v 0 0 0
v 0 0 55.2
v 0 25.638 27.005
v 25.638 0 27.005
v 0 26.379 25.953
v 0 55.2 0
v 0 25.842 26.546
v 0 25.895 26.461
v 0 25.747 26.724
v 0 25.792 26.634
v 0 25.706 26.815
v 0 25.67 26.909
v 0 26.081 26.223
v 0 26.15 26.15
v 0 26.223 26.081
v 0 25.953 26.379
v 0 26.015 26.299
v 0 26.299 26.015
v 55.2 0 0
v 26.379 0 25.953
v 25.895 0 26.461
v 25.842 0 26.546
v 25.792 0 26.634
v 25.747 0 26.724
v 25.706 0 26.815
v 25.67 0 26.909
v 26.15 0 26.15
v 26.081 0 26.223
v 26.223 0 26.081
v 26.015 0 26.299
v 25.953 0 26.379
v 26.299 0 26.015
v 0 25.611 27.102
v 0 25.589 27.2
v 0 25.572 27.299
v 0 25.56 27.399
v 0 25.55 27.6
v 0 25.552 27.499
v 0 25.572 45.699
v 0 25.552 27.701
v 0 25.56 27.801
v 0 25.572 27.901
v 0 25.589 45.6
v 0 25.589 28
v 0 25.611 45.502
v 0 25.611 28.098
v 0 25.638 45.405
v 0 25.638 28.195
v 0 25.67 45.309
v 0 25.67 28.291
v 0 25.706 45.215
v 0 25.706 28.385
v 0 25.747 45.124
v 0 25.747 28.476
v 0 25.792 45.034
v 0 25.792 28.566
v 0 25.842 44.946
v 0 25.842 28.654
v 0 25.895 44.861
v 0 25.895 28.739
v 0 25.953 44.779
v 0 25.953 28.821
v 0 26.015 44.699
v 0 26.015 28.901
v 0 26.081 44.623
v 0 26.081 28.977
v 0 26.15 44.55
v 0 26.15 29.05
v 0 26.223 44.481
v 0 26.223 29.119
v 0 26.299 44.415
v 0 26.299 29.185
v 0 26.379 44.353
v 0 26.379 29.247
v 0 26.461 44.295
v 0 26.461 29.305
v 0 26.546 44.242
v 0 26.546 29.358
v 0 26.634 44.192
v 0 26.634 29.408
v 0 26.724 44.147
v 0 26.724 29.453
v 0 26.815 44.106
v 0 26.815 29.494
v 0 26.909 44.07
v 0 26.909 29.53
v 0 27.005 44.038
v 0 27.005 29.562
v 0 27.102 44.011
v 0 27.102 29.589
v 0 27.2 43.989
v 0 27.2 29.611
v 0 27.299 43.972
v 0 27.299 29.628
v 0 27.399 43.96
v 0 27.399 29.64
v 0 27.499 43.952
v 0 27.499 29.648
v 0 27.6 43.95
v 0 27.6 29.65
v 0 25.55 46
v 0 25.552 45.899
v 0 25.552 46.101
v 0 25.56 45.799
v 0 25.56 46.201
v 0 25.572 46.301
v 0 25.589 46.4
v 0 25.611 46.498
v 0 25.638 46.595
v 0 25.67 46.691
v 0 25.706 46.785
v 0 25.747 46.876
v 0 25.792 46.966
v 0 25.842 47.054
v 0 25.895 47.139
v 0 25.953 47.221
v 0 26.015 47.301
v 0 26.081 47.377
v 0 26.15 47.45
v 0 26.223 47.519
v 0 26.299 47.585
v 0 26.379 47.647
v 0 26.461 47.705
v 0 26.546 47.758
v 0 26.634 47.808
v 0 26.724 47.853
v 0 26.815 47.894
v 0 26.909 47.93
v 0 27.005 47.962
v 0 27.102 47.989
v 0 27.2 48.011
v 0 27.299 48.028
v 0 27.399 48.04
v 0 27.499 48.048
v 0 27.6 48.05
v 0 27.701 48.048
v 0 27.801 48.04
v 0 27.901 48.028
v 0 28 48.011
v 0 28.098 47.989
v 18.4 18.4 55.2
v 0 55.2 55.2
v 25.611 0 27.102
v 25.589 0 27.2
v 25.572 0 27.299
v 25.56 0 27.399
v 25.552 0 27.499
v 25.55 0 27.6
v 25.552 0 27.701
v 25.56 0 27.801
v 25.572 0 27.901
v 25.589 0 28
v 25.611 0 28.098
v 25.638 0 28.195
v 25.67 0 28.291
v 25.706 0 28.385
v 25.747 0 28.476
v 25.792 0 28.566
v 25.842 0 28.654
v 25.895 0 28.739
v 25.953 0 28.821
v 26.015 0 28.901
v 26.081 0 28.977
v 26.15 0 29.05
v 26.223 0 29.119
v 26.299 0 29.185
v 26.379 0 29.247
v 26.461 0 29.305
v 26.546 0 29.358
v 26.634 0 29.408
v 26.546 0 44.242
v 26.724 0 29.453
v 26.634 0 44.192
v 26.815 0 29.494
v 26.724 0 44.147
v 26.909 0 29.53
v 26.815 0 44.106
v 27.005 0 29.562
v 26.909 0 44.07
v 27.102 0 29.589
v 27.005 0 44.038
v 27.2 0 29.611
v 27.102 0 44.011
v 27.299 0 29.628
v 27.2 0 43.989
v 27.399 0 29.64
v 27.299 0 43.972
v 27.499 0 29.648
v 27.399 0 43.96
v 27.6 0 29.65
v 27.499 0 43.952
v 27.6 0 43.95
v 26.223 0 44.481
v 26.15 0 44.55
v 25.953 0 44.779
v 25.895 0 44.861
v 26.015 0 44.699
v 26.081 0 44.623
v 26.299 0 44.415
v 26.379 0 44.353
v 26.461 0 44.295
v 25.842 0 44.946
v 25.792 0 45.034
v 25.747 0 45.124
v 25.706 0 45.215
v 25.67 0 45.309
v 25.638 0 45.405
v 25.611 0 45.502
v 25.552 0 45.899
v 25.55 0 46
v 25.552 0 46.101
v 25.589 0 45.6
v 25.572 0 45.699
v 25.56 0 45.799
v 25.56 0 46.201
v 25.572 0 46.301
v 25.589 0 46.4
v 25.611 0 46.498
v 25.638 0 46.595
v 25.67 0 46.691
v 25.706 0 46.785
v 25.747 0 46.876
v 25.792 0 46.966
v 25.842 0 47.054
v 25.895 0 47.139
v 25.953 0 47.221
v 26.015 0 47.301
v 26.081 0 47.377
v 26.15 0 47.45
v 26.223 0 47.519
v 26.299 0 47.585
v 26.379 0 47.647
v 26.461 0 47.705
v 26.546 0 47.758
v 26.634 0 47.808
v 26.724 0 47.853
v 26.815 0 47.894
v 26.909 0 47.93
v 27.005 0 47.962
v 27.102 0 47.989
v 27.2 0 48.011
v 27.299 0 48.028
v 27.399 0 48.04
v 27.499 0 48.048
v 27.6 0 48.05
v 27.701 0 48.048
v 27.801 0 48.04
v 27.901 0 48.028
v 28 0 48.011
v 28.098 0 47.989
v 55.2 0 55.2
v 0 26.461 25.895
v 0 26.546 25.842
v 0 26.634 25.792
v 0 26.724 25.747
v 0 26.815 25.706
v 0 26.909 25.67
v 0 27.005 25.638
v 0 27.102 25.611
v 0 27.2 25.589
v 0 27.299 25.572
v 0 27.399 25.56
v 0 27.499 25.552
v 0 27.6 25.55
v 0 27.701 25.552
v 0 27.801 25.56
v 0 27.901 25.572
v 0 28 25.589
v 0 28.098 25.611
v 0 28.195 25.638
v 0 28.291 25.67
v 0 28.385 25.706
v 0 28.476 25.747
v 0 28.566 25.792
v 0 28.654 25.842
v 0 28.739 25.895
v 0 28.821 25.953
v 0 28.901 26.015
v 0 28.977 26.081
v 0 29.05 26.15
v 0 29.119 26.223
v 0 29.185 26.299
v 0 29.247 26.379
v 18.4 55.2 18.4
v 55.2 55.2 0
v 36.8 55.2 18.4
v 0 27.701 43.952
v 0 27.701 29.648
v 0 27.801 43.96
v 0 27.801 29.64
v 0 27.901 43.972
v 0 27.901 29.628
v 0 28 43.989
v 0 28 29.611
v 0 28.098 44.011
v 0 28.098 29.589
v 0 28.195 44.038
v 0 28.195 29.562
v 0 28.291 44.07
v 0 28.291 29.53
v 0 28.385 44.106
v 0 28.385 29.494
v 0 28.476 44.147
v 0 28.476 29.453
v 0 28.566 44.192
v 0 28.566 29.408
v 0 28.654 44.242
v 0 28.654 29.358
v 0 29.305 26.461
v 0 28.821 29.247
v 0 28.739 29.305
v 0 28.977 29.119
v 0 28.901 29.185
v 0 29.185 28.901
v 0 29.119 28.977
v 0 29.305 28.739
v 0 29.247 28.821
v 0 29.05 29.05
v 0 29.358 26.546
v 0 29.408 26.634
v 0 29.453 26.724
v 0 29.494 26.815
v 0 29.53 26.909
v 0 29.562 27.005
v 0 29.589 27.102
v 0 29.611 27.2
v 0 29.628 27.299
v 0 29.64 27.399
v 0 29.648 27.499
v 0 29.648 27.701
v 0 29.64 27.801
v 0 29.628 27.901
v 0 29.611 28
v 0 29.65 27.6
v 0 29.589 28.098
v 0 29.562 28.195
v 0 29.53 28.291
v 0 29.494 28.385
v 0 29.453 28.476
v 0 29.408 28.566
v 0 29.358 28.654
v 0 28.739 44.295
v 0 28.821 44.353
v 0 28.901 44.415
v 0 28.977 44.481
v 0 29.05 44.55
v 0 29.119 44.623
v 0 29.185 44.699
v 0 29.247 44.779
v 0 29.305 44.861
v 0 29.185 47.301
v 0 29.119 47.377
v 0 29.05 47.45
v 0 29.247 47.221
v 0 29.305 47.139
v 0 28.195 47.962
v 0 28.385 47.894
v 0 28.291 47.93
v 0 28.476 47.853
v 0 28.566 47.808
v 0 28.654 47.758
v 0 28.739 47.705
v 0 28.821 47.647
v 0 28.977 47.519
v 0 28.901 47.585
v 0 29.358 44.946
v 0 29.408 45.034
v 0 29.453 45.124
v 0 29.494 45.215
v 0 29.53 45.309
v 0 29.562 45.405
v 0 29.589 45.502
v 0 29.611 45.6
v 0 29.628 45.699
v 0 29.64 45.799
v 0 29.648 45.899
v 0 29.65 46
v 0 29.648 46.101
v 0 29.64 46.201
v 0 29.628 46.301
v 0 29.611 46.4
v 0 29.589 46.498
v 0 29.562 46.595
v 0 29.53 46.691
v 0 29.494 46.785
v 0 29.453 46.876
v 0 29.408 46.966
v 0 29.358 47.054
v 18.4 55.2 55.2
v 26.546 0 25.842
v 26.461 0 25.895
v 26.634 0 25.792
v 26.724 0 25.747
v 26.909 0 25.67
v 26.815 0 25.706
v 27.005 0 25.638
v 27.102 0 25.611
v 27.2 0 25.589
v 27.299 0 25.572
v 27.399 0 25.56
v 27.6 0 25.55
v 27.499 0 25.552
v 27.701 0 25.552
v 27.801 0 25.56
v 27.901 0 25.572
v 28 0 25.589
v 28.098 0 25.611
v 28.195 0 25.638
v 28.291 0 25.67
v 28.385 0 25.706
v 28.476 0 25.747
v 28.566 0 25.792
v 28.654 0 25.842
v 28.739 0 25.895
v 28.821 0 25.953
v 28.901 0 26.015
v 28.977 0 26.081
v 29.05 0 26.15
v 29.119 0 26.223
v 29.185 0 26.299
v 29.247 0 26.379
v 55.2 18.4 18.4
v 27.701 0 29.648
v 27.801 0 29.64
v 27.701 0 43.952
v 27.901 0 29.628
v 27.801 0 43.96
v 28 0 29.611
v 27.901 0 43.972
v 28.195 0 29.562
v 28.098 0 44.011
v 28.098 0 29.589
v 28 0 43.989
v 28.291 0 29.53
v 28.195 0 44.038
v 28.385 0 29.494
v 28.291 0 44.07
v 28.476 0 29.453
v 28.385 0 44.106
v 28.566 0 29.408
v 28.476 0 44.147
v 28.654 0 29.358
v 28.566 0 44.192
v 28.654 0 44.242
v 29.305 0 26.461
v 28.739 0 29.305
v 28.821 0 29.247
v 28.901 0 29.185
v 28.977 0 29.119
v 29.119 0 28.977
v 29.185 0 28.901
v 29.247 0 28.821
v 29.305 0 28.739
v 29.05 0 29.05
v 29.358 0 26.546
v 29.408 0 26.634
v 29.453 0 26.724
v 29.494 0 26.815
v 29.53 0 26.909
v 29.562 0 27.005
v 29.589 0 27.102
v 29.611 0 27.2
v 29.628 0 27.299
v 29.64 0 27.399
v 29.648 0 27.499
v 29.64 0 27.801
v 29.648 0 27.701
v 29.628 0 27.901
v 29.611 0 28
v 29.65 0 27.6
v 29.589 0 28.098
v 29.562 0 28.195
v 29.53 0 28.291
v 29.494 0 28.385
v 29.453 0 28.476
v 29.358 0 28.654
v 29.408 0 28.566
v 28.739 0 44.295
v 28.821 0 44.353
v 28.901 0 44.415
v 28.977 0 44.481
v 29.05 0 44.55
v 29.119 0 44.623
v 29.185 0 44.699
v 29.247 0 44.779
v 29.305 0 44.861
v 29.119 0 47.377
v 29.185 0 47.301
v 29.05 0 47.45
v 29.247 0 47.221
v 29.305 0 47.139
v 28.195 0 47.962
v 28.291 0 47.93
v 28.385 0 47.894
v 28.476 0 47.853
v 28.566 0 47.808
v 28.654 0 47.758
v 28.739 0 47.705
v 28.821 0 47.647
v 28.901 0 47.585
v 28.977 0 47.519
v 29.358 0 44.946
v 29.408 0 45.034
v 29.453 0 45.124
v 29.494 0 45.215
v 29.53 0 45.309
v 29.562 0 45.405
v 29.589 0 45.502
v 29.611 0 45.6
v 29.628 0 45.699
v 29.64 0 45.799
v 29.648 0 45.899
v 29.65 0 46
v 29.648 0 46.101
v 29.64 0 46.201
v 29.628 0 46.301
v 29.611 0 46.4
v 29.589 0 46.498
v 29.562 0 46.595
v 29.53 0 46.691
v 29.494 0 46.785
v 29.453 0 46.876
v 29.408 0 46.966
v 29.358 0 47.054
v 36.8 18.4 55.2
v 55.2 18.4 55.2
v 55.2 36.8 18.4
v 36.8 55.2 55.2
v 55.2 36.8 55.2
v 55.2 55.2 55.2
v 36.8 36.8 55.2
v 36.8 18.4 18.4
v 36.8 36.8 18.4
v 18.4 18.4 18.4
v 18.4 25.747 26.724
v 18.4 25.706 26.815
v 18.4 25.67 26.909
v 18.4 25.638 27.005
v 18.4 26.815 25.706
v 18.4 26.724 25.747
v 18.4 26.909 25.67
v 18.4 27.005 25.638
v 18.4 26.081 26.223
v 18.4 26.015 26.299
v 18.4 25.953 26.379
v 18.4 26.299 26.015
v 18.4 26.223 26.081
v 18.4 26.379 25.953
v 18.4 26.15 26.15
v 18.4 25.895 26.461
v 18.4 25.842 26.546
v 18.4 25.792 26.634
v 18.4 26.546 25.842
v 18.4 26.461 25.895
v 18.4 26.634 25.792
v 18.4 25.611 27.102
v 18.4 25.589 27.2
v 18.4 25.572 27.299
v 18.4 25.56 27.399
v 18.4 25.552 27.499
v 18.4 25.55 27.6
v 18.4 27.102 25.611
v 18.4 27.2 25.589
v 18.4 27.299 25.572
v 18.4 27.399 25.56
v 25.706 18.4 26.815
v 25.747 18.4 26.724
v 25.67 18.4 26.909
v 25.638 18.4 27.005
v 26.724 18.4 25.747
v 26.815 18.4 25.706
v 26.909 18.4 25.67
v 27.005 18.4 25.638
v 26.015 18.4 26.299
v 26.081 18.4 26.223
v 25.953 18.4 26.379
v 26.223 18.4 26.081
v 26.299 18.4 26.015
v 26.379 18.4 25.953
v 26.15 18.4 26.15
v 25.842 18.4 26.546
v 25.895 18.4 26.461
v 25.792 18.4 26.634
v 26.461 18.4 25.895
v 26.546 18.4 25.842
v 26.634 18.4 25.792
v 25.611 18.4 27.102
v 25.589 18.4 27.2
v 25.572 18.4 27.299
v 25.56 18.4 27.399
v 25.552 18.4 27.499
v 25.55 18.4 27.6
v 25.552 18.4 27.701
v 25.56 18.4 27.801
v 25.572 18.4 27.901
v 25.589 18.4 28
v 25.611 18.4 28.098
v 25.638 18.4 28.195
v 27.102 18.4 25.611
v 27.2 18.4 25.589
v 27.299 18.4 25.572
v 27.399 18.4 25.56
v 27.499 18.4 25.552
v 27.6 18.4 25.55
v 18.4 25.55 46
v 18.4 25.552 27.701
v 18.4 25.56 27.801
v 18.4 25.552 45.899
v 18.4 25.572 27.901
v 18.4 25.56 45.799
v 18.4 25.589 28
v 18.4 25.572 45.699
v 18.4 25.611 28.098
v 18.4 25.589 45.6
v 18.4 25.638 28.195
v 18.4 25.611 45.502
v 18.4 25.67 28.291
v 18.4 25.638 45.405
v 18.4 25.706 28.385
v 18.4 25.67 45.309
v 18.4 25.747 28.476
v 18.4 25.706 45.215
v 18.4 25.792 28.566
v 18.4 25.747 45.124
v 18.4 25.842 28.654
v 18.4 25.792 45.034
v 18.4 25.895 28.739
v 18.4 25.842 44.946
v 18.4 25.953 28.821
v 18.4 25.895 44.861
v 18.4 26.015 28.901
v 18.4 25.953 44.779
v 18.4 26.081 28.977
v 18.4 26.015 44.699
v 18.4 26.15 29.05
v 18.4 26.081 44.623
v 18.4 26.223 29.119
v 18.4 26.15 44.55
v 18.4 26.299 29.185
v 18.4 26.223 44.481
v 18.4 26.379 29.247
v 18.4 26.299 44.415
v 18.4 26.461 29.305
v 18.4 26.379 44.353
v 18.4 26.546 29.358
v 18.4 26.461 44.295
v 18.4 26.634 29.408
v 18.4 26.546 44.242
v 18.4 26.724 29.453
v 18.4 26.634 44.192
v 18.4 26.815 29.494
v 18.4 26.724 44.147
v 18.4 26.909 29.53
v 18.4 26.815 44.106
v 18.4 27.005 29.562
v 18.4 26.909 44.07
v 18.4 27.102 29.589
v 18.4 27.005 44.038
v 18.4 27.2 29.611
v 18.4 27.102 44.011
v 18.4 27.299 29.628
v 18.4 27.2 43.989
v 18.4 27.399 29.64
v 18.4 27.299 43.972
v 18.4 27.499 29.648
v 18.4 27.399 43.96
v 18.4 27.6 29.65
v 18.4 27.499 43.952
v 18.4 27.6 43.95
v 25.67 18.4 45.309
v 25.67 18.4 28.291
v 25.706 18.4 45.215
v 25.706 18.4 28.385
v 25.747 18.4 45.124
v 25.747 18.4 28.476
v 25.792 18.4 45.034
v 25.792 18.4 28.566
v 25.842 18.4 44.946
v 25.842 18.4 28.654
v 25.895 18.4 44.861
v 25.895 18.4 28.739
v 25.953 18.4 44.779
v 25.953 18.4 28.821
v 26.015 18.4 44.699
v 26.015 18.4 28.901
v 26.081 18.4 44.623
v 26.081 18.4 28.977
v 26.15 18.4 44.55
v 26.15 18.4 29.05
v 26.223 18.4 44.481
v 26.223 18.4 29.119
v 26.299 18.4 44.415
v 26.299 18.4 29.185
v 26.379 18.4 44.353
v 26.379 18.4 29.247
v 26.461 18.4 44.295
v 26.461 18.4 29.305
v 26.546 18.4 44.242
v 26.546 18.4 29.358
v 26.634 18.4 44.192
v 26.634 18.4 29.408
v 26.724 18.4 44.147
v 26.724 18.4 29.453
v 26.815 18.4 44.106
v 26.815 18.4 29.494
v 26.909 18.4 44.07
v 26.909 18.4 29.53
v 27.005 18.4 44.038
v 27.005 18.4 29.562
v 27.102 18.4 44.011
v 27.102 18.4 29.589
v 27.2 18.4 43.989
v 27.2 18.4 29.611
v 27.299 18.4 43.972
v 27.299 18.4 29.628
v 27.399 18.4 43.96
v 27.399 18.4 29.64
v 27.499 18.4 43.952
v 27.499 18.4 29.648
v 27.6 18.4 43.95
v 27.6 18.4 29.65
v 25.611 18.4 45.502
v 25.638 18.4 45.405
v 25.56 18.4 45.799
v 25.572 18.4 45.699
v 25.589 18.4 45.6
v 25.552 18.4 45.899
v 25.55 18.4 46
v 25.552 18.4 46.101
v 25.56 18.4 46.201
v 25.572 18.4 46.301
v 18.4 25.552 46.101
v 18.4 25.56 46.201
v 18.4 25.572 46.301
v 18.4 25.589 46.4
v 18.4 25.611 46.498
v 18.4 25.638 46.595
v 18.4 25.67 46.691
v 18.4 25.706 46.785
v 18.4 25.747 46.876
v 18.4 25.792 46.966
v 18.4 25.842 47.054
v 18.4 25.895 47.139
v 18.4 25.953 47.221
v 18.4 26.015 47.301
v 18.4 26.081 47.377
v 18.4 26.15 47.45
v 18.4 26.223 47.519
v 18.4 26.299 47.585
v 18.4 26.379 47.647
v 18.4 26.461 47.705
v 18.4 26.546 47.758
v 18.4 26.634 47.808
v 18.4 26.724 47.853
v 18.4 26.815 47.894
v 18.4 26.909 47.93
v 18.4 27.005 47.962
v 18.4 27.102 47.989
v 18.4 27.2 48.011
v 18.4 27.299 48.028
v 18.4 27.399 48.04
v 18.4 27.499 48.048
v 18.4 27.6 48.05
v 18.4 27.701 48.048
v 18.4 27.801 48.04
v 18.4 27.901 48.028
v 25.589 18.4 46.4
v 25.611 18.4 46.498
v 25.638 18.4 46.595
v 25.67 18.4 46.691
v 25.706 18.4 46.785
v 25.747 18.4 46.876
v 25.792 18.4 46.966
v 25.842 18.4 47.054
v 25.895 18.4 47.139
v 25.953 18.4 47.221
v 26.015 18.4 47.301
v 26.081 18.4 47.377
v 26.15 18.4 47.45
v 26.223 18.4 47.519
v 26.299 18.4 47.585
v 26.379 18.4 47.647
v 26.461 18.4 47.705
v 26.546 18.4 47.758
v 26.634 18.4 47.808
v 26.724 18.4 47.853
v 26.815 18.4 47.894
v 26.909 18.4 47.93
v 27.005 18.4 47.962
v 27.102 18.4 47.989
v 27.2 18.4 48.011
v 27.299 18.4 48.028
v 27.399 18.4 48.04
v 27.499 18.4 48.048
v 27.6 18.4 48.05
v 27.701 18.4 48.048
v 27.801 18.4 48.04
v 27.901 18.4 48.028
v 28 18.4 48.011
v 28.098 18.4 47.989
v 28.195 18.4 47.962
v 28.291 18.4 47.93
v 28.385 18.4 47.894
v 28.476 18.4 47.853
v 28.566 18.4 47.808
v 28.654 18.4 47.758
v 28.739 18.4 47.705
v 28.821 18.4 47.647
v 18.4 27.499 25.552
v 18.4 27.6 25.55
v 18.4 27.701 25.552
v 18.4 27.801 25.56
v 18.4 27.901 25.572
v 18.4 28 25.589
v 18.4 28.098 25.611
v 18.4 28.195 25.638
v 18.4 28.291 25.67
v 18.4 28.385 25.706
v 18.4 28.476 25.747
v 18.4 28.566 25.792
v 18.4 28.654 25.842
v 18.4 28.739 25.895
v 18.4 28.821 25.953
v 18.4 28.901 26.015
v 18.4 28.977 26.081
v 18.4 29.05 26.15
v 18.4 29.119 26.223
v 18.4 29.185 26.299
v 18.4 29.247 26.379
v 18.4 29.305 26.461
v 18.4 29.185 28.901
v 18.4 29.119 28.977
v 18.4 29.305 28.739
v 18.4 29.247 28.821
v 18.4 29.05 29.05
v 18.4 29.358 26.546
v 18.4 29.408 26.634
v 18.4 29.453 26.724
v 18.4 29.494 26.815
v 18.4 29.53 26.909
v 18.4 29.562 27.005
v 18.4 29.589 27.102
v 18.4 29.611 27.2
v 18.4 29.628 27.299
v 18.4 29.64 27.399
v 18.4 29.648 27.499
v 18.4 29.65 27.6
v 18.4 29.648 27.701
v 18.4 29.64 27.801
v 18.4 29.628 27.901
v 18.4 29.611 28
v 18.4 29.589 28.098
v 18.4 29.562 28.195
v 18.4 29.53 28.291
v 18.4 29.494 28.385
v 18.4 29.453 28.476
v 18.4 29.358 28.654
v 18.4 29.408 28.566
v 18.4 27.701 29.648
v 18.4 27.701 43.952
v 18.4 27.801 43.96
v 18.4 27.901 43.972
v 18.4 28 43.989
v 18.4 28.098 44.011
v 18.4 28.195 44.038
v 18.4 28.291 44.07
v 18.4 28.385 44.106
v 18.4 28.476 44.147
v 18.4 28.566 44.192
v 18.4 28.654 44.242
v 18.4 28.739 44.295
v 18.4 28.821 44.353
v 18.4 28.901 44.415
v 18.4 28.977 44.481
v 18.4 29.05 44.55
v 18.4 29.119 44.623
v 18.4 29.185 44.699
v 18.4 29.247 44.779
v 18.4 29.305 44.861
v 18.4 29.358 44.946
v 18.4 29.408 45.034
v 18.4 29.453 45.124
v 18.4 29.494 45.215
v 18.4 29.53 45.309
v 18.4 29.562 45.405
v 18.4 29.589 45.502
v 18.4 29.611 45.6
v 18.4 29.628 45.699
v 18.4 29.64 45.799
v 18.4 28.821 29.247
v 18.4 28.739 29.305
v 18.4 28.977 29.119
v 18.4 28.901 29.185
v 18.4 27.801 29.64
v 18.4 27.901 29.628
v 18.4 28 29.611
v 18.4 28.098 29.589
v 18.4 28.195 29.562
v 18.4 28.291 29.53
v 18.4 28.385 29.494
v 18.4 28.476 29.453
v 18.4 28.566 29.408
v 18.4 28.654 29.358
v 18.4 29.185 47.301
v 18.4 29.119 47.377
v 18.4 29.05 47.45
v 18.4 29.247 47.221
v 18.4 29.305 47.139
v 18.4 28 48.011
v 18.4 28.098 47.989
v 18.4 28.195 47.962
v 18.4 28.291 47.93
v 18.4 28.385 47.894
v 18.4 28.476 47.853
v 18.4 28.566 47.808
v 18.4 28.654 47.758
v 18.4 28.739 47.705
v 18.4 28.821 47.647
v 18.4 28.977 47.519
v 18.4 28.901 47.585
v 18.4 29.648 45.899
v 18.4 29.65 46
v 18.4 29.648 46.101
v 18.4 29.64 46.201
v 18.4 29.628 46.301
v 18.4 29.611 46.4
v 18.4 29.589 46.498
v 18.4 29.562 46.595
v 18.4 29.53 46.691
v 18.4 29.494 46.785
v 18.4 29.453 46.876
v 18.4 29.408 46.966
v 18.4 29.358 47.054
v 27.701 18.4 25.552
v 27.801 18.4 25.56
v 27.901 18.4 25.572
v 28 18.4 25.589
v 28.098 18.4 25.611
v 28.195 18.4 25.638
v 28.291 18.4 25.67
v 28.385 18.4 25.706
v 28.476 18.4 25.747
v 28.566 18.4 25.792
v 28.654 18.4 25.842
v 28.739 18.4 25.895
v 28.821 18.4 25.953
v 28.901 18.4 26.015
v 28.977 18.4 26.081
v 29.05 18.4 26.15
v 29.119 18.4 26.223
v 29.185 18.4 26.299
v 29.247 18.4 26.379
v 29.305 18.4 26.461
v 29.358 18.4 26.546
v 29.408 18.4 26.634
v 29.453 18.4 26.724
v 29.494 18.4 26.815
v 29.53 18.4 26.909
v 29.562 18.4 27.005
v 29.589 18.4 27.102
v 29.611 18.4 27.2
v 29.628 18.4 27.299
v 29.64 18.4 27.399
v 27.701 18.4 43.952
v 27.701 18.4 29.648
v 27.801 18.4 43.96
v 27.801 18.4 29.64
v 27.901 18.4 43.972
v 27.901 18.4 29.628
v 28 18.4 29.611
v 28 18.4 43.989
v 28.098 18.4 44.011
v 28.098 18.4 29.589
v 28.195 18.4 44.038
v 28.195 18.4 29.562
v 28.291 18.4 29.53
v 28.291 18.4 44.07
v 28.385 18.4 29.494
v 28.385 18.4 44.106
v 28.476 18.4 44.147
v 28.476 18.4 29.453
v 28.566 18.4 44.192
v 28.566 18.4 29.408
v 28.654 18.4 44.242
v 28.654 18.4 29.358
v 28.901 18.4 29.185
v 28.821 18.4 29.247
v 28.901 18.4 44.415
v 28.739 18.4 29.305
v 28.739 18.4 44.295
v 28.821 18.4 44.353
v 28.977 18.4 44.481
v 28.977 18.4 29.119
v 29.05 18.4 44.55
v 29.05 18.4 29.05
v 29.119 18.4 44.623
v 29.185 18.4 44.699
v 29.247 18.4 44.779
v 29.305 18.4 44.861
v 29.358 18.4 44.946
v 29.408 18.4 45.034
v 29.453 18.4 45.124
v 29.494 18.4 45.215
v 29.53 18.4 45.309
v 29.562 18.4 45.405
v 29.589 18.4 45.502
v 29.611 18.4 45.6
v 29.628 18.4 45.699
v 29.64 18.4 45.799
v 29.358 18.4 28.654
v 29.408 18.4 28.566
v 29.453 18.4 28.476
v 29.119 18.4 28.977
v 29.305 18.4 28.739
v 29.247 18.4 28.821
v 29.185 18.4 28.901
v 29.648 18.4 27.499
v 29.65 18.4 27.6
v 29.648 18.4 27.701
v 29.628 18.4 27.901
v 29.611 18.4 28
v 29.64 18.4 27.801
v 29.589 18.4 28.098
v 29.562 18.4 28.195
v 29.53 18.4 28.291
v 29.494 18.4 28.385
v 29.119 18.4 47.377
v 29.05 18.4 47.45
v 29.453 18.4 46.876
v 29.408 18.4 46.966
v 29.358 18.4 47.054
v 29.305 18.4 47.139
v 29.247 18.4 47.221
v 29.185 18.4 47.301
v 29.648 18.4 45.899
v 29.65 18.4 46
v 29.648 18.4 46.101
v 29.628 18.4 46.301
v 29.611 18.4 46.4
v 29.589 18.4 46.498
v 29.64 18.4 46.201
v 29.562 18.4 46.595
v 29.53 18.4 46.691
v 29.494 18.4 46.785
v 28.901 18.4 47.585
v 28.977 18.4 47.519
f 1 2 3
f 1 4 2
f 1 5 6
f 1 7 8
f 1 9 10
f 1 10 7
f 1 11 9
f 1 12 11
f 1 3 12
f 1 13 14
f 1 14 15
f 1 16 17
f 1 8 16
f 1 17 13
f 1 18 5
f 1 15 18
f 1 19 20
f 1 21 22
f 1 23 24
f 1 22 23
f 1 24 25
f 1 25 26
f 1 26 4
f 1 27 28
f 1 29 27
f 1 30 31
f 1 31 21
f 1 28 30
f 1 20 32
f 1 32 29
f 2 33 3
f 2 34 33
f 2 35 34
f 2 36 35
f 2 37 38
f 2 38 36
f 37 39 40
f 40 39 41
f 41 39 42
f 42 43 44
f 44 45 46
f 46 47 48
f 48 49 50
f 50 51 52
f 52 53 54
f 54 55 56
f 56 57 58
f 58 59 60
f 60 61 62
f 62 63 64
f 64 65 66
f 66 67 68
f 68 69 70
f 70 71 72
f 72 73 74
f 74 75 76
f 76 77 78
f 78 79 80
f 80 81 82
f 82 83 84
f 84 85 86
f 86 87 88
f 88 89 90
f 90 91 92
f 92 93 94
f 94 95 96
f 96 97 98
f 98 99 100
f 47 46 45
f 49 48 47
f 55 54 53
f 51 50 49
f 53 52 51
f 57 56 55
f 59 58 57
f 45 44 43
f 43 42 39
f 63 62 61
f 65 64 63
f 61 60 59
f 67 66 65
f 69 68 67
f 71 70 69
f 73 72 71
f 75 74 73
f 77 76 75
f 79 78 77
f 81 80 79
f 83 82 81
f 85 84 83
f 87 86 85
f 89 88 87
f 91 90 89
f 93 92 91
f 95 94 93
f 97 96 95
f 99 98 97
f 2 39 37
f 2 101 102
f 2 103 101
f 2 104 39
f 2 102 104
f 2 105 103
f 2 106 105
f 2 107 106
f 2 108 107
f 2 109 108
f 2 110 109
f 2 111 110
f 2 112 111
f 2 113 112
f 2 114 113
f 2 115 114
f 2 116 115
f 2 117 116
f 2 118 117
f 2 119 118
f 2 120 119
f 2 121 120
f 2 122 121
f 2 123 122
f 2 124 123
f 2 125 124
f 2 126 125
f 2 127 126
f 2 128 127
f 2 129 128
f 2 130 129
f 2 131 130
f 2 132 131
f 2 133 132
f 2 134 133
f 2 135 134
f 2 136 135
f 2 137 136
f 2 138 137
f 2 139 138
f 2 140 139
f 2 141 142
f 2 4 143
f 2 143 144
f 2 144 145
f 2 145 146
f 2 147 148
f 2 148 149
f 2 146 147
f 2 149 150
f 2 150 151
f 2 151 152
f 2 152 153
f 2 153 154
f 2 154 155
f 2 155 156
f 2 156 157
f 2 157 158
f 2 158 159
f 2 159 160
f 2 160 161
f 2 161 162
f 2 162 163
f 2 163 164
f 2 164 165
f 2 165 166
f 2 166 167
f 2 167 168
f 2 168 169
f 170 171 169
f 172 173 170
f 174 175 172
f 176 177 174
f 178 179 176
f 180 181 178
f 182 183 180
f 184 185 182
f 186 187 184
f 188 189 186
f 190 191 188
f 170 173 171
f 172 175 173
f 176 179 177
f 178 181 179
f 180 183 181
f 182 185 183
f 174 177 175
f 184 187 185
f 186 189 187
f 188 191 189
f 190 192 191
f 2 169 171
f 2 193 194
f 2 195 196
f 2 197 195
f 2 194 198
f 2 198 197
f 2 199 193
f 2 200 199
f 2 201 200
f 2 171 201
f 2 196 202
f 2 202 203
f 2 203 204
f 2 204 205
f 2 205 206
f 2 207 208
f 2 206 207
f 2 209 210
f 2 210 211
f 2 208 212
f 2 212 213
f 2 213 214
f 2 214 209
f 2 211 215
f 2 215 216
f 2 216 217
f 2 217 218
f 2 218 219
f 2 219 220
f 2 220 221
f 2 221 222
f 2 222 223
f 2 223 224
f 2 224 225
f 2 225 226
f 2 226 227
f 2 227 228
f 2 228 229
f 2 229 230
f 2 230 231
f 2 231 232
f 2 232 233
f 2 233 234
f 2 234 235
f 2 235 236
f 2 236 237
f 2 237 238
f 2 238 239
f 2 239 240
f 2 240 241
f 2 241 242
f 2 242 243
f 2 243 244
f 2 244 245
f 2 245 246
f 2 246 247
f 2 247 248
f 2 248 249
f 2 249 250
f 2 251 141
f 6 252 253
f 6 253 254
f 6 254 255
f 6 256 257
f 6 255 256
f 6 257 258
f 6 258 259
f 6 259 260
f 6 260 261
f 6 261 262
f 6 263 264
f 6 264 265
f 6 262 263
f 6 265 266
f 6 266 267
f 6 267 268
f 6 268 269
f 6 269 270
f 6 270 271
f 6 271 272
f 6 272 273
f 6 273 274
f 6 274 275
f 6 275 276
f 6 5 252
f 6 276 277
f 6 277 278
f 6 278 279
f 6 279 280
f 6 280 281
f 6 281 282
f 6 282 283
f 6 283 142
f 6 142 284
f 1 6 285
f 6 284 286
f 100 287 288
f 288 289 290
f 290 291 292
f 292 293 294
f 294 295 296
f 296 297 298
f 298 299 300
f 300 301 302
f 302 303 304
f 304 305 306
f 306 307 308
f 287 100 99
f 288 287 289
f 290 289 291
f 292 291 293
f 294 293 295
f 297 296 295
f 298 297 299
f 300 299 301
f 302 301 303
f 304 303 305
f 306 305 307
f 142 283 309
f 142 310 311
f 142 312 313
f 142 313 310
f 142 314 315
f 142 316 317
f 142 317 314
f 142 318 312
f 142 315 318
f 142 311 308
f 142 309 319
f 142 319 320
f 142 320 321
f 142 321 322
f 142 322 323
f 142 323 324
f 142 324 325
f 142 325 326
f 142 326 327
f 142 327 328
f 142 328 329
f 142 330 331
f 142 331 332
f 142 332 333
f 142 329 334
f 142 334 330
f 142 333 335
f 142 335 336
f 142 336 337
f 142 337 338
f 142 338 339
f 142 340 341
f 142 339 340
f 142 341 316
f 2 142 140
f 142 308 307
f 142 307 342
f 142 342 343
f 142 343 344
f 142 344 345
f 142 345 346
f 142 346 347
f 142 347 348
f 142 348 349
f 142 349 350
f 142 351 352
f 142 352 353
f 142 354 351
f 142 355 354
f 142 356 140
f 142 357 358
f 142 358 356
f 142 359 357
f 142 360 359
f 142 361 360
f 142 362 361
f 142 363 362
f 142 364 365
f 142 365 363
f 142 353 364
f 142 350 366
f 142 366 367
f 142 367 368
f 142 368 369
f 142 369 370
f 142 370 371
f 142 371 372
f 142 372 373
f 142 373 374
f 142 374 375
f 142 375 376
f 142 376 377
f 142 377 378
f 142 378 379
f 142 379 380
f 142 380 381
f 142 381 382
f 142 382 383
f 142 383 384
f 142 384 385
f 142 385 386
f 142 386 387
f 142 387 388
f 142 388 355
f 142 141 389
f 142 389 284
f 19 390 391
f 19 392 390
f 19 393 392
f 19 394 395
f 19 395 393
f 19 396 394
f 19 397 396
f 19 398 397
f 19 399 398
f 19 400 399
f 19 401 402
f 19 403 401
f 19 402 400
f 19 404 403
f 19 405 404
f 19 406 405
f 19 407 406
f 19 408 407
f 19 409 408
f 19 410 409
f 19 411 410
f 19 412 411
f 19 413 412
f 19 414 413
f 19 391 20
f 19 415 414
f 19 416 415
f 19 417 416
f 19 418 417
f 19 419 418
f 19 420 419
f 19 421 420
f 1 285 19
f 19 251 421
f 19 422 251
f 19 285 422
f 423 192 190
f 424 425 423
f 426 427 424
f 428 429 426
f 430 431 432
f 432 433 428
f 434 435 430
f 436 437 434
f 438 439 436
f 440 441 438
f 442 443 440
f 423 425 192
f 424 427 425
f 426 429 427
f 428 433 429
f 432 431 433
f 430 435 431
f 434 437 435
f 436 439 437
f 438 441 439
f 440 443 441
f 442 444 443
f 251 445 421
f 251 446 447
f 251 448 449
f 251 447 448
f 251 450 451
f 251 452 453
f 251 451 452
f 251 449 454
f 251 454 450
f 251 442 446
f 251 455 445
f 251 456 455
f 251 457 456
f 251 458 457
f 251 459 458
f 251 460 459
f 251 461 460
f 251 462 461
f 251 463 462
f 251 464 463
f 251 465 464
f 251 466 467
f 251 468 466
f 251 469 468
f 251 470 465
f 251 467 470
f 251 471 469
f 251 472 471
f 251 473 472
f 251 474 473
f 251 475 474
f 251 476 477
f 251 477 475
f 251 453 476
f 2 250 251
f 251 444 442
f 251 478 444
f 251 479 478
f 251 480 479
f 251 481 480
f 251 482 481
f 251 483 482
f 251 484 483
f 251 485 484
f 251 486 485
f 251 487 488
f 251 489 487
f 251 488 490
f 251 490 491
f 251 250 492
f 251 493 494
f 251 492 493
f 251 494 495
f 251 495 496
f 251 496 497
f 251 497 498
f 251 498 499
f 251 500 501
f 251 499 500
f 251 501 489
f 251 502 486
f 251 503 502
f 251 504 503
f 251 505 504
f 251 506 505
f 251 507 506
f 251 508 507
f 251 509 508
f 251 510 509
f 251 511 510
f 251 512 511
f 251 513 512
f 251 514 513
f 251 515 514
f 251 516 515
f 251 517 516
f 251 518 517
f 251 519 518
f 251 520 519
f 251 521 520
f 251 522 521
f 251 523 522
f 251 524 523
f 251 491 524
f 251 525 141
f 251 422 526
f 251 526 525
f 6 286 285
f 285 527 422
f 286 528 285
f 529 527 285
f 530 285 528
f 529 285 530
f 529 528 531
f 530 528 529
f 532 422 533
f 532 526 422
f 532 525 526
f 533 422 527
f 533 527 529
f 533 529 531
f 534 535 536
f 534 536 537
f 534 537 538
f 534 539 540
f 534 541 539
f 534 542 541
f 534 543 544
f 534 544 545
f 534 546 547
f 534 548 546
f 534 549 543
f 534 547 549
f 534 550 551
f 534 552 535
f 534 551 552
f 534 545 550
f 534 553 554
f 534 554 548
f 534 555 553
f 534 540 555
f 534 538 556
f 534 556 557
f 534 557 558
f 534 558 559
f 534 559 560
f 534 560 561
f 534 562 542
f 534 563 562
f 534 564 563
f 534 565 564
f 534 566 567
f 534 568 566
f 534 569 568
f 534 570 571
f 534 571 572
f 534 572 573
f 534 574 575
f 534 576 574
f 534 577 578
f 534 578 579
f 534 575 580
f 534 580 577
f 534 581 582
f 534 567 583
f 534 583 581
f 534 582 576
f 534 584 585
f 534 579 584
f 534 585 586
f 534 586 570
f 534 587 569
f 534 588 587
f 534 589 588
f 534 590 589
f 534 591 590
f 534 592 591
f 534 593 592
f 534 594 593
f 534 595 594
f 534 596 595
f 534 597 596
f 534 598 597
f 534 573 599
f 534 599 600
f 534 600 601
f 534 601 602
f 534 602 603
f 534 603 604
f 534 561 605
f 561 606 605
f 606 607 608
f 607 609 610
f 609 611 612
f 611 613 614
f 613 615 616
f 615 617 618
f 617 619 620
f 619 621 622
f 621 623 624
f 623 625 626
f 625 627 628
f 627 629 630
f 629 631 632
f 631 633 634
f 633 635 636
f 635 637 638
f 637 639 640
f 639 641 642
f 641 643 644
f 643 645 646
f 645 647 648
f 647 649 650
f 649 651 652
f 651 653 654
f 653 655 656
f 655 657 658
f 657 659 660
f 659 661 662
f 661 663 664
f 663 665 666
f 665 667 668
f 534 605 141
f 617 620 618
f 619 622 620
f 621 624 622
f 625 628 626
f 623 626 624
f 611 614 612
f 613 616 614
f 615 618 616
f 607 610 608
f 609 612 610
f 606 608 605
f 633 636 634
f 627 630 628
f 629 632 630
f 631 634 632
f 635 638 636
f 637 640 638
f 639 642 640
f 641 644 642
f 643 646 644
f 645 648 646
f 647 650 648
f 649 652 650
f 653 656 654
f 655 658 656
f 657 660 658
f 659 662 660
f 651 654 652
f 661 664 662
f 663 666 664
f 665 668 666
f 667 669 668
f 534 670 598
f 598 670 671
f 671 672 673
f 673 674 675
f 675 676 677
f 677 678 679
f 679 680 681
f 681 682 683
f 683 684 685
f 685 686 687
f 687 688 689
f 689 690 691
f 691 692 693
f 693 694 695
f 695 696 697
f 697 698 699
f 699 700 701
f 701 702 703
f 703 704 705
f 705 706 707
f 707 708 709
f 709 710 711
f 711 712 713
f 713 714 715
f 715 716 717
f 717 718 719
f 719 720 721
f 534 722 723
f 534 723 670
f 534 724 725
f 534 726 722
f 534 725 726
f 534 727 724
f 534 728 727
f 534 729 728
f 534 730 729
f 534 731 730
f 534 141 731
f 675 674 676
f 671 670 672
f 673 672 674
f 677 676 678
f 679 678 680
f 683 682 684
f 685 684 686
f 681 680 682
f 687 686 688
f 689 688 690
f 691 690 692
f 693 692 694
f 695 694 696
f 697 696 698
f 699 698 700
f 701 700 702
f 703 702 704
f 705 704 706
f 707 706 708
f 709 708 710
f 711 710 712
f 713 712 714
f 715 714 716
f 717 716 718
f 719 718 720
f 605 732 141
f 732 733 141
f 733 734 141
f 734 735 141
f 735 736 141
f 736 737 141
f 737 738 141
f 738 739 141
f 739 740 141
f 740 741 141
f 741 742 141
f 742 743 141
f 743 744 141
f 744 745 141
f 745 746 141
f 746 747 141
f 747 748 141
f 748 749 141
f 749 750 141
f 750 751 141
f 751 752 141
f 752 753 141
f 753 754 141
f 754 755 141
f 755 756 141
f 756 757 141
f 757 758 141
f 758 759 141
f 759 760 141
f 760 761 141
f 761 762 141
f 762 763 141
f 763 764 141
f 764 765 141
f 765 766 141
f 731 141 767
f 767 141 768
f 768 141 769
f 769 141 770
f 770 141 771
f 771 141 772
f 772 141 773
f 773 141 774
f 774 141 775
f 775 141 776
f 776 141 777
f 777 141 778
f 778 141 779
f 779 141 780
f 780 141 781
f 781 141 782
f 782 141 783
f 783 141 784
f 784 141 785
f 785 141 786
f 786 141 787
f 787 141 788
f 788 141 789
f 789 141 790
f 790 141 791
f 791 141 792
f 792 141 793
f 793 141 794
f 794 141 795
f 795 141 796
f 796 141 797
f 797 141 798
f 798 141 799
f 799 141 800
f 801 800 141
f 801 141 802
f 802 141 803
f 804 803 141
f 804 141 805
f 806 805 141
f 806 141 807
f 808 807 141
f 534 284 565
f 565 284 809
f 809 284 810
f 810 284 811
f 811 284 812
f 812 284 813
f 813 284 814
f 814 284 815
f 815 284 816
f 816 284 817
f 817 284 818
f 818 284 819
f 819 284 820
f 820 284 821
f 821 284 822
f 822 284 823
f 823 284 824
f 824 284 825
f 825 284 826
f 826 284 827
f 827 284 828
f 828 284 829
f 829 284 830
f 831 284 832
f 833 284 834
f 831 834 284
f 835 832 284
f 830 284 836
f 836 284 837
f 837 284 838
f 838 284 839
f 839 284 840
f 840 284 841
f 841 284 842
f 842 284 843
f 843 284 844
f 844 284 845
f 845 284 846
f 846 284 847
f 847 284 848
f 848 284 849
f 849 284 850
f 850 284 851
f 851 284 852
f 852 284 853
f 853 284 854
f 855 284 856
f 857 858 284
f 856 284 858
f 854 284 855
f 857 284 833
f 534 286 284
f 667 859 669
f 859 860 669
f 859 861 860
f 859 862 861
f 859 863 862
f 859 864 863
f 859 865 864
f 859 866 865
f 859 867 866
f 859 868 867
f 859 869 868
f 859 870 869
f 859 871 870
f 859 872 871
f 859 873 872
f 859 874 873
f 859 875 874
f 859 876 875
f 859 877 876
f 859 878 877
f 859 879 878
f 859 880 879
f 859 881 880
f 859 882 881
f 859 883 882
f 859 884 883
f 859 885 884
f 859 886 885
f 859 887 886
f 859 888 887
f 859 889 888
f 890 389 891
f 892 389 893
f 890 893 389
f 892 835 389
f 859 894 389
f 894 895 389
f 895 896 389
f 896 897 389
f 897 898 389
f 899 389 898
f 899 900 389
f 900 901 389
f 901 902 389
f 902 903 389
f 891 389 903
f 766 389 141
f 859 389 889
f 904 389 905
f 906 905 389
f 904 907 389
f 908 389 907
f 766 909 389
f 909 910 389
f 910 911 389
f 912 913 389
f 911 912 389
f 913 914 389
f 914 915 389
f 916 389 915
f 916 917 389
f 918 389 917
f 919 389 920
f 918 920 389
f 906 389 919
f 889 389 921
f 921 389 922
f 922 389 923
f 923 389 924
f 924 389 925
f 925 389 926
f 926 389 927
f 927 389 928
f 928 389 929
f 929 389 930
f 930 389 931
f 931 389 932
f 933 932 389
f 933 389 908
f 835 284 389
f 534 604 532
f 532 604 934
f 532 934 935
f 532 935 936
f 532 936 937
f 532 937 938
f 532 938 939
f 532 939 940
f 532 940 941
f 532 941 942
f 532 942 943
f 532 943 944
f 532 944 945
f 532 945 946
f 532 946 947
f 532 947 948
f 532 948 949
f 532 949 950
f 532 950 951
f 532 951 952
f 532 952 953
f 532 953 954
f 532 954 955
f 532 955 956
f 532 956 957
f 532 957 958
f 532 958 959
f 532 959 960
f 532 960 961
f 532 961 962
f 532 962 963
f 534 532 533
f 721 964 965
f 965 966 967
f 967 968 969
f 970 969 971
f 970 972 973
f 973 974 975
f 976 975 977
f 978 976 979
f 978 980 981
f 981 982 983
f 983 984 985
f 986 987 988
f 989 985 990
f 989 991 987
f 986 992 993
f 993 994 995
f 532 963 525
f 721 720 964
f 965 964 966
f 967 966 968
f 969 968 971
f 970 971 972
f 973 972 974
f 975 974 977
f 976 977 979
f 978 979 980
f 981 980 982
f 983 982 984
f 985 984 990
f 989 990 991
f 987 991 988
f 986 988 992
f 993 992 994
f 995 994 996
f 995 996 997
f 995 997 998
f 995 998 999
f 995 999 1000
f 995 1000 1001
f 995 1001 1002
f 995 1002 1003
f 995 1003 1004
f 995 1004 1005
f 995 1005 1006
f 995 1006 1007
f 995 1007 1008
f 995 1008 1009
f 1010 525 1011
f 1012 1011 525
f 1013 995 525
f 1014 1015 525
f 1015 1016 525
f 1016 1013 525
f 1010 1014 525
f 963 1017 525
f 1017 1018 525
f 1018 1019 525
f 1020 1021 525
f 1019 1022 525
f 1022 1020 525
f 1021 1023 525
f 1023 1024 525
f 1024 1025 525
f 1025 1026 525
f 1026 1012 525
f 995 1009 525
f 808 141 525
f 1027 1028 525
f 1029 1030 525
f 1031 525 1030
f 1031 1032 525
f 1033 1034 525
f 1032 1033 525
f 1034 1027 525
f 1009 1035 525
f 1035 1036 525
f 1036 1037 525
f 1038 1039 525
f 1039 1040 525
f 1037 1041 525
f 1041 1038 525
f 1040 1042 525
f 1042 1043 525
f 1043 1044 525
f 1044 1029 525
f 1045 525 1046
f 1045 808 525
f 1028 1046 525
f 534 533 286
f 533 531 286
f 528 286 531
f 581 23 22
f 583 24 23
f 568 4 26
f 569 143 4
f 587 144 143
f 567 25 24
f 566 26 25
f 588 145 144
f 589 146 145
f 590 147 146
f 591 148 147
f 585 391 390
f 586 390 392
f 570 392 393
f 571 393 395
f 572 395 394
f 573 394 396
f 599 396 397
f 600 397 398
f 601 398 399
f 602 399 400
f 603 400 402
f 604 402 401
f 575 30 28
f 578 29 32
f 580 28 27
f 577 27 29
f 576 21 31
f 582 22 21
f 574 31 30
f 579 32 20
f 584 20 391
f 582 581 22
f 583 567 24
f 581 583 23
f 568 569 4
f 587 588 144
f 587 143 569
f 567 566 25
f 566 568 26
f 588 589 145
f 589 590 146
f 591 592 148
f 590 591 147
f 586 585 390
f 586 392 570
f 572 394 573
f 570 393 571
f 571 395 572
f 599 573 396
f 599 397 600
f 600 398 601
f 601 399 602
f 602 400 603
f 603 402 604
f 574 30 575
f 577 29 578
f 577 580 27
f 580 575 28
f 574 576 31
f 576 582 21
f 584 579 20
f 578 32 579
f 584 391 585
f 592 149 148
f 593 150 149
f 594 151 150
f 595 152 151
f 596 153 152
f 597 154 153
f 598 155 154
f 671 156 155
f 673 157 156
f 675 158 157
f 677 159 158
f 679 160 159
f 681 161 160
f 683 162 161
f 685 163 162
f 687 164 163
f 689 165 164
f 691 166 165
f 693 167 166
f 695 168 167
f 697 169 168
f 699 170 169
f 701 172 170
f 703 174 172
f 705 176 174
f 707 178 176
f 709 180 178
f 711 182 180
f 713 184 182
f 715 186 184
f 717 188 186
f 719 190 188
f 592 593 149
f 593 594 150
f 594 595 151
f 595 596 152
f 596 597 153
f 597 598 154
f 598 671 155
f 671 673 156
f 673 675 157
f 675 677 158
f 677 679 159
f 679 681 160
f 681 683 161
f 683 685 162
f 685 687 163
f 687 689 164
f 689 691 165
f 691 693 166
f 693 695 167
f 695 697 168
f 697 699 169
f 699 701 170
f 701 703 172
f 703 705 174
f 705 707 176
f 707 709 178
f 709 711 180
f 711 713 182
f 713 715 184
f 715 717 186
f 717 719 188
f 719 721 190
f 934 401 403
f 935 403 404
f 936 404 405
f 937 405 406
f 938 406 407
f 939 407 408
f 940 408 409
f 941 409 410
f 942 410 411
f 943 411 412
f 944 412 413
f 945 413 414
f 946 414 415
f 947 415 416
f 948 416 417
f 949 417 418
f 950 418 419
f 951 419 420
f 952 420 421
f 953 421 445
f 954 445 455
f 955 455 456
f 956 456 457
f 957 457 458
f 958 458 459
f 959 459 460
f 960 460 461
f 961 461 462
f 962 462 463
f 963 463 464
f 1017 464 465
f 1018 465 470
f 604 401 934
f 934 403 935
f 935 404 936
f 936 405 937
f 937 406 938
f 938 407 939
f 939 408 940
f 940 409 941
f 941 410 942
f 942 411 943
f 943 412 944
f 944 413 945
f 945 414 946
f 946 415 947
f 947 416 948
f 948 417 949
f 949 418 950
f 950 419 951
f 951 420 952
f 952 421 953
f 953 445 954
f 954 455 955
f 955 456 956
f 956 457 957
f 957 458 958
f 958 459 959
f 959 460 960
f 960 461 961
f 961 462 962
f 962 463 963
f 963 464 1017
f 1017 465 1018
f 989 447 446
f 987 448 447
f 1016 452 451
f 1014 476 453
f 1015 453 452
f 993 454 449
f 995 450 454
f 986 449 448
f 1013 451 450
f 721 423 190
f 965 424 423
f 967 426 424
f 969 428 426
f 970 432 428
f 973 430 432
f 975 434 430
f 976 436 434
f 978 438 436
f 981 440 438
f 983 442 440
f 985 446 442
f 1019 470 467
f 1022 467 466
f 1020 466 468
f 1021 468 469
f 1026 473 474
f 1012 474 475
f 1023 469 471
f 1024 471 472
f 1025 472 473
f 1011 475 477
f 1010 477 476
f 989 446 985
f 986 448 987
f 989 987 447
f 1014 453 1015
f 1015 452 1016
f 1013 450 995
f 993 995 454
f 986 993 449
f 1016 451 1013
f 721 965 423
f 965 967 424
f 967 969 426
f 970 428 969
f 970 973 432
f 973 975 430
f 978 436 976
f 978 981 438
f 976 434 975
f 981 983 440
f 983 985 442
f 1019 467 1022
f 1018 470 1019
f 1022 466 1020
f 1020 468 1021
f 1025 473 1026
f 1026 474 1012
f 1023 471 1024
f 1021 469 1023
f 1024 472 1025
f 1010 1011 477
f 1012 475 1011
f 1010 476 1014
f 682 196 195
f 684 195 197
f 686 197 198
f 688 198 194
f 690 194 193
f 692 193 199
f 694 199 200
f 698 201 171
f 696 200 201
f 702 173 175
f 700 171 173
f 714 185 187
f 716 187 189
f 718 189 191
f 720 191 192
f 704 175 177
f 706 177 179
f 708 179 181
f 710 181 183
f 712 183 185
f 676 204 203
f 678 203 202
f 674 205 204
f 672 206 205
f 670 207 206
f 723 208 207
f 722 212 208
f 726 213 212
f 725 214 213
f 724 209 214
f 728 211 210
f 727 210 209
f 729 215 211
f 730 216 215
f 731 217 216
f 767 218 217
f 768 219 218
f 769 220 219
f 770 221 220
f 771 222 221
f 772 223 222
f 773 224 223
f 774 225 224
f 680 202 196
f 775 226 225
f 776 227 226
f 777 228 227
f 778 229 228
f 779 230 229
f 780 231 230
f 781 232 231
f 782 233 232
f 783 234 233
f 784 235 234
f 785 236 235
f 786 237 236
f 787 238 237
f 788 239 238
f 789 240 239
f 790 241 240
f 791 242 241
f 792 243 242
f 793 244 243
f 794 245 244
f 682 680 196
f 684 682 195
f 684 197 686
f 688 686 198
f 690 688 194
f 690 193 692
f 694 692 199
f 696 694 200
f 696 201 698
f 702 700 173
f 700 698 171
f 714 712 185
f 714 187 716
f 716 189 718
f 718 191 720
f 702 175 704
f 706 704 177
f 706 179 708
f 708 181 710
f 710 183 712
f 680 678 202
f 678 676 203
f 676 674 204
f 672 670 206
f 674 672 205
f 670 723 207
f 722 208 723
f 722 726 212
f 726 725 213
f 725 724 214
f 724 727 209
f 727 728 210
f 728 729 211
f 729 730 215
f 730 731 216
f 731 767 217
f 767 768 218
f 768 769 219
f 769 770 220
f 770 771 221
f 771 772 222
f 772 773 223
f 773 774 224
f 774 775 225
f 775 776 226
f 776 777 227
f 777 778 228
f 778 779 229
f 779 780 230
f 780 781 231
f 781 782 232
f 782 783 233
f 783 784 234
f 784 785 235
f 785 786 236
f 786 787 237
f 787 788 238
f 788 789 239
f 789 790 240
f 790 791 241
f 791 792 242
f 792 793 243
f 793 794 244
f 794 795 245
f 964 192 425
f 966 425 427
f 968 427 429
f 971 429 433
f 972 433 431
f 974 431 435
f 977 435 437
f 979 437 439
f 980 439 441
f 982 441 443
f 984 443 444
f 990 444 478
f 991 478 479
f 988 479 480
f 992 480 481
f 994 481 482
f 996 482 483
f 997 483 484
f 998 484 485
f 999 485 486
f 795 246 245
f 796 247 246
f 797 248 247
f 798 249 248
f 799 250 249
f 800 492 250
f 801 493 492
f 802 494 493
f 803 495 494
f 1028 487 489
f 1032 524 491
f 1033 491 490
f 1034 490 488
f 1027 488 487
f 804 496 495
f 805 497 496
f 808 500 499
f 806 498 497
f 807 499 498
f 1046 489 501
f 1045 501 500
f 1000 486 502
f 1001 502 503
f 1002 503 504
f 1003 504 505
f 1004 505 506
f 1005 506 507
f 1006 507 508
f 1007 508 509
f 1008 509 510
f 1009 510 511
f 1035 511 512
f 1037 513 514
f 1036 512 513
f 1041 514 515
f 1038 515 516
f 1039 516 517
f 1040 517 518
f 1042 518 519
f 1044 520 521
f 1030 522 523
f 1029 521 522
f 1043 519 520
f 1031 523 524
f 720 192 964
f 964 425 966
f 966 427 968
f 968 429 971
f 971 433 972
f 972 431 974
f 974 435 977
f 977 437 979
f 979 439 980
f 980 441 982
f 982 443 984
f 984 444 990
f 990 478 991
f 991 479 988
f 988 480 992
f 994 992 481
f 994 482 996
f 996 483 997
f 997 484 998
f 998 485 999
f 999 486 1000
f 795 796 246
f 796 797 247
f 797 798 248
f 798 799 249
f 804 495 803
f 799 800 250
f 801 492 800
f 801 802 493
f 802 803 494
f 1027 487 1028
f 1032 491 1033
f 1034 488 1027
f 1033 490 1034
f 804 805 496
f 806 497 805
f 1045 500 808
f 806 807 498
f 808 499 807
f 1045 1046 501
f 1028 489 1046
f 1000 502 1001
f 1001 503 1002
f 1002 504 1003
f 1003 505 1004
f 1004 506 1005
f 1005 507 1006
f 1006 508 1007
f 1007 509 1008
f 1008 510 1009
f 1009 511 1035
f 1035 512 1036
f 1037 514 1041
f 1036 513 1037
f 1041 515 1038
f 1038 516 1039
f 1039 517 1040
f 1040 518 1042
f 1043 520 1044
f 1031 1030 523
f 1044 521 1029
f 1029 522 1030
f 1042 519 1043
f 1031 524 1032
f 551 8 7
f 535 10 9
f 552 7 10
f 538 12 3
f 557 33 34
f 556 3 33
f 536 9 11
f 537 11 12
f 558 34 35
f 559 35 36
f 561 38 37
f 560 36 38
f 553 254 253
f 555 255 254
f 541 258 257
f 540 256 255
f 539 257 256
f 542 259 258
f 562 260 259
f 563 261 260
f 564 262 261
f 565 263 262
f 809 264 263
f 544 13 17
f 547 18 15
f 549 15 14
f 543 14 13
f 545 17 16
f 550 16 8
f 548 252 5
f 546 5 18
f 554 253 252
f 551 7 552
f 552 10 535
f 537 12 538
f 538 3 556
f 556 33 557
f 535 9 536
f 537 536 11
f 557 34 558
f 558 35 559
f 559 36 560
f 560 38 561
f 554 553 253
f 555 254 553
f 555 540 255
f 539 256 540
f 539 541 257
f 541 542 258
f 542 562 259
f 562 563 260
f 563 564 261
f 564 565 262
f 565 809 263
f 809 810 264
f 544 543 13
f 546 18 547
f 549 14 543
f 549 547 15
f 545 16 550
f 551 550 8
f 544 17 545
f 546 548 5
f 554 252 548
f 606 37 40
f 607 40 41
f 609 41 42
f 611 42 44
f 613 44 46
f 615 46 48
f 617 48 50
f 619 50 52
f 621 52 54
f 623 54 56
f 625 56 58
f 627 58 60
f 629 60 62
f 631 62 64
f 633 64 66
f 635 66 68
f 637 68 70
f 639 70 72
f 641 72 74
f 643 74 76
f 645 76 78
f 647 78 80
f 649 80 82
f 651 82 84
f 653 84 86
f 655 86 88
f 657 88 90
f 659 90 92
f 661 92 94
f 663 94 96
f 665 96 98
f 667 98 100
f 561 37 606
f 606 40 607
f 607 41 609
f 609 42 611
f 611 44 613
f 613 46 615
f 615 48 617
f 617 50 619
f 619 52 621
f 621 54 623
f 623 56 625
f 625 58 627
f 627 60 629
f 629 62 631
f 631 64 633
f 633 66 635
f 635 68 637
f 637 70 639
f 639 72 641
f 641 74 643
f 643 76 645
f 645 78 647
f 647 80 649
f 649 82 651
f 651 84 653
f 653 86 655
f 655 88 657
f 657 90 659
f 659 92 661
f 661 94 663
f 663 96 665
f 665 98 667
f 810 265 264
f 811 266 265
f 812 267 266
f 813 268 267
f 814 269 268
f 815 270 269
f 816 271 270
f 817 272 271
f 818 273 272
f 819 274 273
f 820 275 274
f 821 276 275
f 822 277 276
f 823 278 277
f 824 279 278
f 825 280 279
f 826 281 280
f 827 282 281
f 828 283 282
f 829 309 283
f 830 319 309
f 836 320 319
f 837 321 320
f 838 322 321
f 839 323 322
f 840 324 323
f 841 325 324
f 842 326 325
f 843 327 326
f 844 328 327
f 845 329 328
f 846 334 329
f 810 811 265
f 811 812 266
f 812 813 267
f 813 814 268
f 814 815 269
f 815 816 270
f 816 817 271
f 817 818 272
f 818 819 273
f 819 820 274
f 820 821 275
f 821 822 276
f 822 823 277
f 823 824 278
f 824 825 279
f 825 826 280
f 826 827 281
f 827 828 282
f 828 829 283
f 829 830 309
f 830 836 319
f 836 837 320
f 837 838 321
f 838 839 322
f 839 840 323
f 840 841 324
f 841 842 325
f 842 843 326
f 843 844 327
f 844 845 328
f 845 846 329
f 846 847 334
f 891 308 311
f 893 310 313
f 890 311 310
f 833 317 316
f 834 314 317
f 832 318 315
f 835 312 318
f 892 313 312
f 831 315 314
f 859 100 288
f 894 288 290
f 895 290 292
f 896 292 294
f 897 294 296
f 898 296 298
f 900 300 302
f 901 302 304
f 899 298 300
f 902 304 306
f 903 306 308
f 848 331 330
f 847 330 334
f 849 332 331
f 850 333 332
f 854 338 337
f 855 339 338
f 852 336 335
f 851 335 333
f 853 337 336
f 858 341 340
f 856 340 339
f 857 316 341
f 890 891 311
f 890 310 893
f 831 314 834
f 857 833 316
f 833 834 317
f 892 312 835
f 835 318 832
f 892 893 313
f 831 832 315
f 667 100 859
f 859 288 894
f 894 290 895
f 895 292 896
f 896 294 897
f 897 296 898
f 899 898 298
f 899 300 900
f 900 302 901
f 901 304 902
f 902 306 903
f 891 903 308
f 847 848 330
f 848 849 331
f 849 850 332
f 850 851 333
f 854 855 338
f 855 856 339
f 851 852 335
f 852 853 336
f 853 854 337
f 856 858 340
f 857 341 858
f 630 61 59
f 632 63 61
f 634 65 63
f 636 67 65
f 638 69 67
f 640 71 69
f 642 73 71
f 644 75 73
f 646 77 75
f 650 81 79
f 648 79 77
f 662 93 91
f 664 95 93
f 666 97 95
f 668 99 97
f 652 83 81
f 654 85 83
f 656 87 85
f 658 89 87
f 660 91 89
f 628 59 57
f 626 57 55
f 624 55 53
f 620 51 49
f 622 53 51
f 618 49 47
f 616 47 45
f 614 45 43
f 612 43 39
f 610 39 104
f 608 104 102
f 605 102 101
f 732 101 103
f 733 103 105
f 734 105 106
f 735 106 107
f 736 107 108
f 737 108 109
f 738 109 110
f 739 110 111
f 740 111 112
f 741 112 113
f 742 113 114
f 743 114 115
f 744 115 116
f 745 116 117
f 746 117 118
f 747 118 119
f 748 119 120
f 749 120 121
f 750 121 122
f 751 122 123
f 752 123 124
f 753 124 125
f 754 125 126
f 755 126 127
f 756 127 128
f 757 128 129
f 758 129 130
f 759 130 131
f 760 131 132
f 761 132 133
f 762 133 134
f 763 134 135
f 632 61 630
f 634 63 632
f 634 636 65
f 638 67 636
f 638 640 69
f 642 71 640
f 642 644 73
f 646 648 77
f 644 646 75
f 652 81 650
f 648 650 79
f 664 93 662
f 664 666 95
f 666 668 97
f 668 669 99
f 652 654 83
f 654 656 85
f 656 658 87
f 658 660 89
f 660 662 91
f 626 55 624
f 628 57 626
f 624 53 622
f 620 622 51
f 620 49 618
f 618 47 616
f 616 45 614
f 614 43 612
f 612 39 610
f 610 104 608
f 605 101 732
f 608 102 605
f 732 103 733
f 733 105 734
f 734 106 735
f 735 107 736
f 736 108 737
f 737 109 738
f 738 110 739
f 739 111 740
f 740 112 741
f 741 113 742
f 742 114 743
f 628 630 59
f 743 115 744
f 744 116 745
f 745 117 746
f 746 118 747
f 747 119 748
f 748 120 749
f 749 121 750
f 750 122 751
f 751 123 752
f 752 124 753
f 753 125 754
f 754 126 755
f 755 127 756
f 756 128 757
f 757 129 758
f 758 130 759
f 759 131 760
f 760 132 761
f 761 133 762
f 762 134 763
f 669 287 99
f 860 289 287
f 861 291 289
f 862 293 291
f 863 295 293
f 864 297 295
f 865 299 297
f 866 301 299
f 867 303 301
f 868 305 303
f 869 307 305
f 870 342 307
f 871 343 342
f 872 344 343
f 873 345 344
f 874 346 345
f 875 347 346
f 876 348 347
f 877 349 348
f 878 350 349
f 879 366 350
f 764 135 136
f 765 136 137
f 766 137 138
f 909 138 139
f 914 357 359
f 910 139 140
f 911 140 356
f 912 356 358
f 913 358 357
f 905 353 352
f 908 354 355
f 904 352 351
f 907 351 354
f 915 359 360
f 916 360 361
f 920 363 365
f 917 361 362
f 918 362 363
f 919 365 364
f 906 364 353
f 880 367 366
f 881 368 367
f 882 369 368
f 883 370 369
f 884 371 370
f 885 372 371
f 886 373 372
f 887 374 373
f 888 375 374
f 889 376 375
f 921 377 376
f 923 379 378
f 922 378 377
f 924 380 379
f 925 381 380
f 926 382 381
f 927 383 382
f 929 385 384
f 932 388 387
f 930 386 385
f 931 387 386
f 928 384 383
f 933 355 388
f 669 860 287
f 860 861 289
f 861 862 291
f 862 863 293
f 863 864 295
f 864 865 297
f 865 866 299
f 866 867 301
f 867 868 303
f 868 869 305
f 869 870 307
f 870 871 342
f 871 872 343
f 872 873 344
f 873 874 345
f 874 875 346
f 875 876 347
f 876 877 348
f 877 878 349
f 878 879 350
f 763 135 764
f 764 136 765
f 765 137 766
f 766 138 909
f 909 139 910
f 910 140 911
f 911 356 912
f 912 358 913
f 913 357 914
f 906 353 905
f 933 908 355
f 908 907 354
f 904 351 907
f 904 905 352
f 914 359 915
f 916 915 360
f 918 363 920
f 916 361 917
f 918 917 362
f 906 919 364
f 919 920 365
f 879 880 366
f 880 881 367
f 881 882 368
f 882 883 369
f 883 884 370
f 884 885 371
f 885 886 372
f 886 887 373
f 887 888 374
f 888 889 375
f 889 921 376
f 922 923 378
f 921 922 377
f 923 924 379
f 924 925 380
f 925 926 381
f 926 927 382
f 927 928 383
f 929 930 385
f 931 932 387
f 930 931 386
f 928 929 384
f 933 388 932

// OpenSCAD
gap = 18.4;
height = gap * 3;
$fn = 128;

difference() {
  cube([height, height, height]);
  translate([gap, gap, gap]) cube([100, gap, 100]);
  translate([gap, gap, gap]) cube([gap, 100, 100]);
  translate([gap * 1.5, -gap, gap * 1.5]) rotate([-90, 0, 0]) cylinder(100, d=4.1);
  translate([gap * 1.5, -gap, gap * 2.5]) rotate([-90, 0, 0]) cylinder(100, d=4.1);

  translate([gap * 1.5, gap * 1.5, gap * 1.5]) rotate([-90, 0, 90]) cylinder(100, d=4.1);
  translate([gap * 1.5, gap * 1.5, gap * 2.5]) rotate([-90, 0, 90]) cylinder(100, d=4.1);

  translate([gap * 3, gap * 3, gap]) cube([100, 100, 100]);
}
